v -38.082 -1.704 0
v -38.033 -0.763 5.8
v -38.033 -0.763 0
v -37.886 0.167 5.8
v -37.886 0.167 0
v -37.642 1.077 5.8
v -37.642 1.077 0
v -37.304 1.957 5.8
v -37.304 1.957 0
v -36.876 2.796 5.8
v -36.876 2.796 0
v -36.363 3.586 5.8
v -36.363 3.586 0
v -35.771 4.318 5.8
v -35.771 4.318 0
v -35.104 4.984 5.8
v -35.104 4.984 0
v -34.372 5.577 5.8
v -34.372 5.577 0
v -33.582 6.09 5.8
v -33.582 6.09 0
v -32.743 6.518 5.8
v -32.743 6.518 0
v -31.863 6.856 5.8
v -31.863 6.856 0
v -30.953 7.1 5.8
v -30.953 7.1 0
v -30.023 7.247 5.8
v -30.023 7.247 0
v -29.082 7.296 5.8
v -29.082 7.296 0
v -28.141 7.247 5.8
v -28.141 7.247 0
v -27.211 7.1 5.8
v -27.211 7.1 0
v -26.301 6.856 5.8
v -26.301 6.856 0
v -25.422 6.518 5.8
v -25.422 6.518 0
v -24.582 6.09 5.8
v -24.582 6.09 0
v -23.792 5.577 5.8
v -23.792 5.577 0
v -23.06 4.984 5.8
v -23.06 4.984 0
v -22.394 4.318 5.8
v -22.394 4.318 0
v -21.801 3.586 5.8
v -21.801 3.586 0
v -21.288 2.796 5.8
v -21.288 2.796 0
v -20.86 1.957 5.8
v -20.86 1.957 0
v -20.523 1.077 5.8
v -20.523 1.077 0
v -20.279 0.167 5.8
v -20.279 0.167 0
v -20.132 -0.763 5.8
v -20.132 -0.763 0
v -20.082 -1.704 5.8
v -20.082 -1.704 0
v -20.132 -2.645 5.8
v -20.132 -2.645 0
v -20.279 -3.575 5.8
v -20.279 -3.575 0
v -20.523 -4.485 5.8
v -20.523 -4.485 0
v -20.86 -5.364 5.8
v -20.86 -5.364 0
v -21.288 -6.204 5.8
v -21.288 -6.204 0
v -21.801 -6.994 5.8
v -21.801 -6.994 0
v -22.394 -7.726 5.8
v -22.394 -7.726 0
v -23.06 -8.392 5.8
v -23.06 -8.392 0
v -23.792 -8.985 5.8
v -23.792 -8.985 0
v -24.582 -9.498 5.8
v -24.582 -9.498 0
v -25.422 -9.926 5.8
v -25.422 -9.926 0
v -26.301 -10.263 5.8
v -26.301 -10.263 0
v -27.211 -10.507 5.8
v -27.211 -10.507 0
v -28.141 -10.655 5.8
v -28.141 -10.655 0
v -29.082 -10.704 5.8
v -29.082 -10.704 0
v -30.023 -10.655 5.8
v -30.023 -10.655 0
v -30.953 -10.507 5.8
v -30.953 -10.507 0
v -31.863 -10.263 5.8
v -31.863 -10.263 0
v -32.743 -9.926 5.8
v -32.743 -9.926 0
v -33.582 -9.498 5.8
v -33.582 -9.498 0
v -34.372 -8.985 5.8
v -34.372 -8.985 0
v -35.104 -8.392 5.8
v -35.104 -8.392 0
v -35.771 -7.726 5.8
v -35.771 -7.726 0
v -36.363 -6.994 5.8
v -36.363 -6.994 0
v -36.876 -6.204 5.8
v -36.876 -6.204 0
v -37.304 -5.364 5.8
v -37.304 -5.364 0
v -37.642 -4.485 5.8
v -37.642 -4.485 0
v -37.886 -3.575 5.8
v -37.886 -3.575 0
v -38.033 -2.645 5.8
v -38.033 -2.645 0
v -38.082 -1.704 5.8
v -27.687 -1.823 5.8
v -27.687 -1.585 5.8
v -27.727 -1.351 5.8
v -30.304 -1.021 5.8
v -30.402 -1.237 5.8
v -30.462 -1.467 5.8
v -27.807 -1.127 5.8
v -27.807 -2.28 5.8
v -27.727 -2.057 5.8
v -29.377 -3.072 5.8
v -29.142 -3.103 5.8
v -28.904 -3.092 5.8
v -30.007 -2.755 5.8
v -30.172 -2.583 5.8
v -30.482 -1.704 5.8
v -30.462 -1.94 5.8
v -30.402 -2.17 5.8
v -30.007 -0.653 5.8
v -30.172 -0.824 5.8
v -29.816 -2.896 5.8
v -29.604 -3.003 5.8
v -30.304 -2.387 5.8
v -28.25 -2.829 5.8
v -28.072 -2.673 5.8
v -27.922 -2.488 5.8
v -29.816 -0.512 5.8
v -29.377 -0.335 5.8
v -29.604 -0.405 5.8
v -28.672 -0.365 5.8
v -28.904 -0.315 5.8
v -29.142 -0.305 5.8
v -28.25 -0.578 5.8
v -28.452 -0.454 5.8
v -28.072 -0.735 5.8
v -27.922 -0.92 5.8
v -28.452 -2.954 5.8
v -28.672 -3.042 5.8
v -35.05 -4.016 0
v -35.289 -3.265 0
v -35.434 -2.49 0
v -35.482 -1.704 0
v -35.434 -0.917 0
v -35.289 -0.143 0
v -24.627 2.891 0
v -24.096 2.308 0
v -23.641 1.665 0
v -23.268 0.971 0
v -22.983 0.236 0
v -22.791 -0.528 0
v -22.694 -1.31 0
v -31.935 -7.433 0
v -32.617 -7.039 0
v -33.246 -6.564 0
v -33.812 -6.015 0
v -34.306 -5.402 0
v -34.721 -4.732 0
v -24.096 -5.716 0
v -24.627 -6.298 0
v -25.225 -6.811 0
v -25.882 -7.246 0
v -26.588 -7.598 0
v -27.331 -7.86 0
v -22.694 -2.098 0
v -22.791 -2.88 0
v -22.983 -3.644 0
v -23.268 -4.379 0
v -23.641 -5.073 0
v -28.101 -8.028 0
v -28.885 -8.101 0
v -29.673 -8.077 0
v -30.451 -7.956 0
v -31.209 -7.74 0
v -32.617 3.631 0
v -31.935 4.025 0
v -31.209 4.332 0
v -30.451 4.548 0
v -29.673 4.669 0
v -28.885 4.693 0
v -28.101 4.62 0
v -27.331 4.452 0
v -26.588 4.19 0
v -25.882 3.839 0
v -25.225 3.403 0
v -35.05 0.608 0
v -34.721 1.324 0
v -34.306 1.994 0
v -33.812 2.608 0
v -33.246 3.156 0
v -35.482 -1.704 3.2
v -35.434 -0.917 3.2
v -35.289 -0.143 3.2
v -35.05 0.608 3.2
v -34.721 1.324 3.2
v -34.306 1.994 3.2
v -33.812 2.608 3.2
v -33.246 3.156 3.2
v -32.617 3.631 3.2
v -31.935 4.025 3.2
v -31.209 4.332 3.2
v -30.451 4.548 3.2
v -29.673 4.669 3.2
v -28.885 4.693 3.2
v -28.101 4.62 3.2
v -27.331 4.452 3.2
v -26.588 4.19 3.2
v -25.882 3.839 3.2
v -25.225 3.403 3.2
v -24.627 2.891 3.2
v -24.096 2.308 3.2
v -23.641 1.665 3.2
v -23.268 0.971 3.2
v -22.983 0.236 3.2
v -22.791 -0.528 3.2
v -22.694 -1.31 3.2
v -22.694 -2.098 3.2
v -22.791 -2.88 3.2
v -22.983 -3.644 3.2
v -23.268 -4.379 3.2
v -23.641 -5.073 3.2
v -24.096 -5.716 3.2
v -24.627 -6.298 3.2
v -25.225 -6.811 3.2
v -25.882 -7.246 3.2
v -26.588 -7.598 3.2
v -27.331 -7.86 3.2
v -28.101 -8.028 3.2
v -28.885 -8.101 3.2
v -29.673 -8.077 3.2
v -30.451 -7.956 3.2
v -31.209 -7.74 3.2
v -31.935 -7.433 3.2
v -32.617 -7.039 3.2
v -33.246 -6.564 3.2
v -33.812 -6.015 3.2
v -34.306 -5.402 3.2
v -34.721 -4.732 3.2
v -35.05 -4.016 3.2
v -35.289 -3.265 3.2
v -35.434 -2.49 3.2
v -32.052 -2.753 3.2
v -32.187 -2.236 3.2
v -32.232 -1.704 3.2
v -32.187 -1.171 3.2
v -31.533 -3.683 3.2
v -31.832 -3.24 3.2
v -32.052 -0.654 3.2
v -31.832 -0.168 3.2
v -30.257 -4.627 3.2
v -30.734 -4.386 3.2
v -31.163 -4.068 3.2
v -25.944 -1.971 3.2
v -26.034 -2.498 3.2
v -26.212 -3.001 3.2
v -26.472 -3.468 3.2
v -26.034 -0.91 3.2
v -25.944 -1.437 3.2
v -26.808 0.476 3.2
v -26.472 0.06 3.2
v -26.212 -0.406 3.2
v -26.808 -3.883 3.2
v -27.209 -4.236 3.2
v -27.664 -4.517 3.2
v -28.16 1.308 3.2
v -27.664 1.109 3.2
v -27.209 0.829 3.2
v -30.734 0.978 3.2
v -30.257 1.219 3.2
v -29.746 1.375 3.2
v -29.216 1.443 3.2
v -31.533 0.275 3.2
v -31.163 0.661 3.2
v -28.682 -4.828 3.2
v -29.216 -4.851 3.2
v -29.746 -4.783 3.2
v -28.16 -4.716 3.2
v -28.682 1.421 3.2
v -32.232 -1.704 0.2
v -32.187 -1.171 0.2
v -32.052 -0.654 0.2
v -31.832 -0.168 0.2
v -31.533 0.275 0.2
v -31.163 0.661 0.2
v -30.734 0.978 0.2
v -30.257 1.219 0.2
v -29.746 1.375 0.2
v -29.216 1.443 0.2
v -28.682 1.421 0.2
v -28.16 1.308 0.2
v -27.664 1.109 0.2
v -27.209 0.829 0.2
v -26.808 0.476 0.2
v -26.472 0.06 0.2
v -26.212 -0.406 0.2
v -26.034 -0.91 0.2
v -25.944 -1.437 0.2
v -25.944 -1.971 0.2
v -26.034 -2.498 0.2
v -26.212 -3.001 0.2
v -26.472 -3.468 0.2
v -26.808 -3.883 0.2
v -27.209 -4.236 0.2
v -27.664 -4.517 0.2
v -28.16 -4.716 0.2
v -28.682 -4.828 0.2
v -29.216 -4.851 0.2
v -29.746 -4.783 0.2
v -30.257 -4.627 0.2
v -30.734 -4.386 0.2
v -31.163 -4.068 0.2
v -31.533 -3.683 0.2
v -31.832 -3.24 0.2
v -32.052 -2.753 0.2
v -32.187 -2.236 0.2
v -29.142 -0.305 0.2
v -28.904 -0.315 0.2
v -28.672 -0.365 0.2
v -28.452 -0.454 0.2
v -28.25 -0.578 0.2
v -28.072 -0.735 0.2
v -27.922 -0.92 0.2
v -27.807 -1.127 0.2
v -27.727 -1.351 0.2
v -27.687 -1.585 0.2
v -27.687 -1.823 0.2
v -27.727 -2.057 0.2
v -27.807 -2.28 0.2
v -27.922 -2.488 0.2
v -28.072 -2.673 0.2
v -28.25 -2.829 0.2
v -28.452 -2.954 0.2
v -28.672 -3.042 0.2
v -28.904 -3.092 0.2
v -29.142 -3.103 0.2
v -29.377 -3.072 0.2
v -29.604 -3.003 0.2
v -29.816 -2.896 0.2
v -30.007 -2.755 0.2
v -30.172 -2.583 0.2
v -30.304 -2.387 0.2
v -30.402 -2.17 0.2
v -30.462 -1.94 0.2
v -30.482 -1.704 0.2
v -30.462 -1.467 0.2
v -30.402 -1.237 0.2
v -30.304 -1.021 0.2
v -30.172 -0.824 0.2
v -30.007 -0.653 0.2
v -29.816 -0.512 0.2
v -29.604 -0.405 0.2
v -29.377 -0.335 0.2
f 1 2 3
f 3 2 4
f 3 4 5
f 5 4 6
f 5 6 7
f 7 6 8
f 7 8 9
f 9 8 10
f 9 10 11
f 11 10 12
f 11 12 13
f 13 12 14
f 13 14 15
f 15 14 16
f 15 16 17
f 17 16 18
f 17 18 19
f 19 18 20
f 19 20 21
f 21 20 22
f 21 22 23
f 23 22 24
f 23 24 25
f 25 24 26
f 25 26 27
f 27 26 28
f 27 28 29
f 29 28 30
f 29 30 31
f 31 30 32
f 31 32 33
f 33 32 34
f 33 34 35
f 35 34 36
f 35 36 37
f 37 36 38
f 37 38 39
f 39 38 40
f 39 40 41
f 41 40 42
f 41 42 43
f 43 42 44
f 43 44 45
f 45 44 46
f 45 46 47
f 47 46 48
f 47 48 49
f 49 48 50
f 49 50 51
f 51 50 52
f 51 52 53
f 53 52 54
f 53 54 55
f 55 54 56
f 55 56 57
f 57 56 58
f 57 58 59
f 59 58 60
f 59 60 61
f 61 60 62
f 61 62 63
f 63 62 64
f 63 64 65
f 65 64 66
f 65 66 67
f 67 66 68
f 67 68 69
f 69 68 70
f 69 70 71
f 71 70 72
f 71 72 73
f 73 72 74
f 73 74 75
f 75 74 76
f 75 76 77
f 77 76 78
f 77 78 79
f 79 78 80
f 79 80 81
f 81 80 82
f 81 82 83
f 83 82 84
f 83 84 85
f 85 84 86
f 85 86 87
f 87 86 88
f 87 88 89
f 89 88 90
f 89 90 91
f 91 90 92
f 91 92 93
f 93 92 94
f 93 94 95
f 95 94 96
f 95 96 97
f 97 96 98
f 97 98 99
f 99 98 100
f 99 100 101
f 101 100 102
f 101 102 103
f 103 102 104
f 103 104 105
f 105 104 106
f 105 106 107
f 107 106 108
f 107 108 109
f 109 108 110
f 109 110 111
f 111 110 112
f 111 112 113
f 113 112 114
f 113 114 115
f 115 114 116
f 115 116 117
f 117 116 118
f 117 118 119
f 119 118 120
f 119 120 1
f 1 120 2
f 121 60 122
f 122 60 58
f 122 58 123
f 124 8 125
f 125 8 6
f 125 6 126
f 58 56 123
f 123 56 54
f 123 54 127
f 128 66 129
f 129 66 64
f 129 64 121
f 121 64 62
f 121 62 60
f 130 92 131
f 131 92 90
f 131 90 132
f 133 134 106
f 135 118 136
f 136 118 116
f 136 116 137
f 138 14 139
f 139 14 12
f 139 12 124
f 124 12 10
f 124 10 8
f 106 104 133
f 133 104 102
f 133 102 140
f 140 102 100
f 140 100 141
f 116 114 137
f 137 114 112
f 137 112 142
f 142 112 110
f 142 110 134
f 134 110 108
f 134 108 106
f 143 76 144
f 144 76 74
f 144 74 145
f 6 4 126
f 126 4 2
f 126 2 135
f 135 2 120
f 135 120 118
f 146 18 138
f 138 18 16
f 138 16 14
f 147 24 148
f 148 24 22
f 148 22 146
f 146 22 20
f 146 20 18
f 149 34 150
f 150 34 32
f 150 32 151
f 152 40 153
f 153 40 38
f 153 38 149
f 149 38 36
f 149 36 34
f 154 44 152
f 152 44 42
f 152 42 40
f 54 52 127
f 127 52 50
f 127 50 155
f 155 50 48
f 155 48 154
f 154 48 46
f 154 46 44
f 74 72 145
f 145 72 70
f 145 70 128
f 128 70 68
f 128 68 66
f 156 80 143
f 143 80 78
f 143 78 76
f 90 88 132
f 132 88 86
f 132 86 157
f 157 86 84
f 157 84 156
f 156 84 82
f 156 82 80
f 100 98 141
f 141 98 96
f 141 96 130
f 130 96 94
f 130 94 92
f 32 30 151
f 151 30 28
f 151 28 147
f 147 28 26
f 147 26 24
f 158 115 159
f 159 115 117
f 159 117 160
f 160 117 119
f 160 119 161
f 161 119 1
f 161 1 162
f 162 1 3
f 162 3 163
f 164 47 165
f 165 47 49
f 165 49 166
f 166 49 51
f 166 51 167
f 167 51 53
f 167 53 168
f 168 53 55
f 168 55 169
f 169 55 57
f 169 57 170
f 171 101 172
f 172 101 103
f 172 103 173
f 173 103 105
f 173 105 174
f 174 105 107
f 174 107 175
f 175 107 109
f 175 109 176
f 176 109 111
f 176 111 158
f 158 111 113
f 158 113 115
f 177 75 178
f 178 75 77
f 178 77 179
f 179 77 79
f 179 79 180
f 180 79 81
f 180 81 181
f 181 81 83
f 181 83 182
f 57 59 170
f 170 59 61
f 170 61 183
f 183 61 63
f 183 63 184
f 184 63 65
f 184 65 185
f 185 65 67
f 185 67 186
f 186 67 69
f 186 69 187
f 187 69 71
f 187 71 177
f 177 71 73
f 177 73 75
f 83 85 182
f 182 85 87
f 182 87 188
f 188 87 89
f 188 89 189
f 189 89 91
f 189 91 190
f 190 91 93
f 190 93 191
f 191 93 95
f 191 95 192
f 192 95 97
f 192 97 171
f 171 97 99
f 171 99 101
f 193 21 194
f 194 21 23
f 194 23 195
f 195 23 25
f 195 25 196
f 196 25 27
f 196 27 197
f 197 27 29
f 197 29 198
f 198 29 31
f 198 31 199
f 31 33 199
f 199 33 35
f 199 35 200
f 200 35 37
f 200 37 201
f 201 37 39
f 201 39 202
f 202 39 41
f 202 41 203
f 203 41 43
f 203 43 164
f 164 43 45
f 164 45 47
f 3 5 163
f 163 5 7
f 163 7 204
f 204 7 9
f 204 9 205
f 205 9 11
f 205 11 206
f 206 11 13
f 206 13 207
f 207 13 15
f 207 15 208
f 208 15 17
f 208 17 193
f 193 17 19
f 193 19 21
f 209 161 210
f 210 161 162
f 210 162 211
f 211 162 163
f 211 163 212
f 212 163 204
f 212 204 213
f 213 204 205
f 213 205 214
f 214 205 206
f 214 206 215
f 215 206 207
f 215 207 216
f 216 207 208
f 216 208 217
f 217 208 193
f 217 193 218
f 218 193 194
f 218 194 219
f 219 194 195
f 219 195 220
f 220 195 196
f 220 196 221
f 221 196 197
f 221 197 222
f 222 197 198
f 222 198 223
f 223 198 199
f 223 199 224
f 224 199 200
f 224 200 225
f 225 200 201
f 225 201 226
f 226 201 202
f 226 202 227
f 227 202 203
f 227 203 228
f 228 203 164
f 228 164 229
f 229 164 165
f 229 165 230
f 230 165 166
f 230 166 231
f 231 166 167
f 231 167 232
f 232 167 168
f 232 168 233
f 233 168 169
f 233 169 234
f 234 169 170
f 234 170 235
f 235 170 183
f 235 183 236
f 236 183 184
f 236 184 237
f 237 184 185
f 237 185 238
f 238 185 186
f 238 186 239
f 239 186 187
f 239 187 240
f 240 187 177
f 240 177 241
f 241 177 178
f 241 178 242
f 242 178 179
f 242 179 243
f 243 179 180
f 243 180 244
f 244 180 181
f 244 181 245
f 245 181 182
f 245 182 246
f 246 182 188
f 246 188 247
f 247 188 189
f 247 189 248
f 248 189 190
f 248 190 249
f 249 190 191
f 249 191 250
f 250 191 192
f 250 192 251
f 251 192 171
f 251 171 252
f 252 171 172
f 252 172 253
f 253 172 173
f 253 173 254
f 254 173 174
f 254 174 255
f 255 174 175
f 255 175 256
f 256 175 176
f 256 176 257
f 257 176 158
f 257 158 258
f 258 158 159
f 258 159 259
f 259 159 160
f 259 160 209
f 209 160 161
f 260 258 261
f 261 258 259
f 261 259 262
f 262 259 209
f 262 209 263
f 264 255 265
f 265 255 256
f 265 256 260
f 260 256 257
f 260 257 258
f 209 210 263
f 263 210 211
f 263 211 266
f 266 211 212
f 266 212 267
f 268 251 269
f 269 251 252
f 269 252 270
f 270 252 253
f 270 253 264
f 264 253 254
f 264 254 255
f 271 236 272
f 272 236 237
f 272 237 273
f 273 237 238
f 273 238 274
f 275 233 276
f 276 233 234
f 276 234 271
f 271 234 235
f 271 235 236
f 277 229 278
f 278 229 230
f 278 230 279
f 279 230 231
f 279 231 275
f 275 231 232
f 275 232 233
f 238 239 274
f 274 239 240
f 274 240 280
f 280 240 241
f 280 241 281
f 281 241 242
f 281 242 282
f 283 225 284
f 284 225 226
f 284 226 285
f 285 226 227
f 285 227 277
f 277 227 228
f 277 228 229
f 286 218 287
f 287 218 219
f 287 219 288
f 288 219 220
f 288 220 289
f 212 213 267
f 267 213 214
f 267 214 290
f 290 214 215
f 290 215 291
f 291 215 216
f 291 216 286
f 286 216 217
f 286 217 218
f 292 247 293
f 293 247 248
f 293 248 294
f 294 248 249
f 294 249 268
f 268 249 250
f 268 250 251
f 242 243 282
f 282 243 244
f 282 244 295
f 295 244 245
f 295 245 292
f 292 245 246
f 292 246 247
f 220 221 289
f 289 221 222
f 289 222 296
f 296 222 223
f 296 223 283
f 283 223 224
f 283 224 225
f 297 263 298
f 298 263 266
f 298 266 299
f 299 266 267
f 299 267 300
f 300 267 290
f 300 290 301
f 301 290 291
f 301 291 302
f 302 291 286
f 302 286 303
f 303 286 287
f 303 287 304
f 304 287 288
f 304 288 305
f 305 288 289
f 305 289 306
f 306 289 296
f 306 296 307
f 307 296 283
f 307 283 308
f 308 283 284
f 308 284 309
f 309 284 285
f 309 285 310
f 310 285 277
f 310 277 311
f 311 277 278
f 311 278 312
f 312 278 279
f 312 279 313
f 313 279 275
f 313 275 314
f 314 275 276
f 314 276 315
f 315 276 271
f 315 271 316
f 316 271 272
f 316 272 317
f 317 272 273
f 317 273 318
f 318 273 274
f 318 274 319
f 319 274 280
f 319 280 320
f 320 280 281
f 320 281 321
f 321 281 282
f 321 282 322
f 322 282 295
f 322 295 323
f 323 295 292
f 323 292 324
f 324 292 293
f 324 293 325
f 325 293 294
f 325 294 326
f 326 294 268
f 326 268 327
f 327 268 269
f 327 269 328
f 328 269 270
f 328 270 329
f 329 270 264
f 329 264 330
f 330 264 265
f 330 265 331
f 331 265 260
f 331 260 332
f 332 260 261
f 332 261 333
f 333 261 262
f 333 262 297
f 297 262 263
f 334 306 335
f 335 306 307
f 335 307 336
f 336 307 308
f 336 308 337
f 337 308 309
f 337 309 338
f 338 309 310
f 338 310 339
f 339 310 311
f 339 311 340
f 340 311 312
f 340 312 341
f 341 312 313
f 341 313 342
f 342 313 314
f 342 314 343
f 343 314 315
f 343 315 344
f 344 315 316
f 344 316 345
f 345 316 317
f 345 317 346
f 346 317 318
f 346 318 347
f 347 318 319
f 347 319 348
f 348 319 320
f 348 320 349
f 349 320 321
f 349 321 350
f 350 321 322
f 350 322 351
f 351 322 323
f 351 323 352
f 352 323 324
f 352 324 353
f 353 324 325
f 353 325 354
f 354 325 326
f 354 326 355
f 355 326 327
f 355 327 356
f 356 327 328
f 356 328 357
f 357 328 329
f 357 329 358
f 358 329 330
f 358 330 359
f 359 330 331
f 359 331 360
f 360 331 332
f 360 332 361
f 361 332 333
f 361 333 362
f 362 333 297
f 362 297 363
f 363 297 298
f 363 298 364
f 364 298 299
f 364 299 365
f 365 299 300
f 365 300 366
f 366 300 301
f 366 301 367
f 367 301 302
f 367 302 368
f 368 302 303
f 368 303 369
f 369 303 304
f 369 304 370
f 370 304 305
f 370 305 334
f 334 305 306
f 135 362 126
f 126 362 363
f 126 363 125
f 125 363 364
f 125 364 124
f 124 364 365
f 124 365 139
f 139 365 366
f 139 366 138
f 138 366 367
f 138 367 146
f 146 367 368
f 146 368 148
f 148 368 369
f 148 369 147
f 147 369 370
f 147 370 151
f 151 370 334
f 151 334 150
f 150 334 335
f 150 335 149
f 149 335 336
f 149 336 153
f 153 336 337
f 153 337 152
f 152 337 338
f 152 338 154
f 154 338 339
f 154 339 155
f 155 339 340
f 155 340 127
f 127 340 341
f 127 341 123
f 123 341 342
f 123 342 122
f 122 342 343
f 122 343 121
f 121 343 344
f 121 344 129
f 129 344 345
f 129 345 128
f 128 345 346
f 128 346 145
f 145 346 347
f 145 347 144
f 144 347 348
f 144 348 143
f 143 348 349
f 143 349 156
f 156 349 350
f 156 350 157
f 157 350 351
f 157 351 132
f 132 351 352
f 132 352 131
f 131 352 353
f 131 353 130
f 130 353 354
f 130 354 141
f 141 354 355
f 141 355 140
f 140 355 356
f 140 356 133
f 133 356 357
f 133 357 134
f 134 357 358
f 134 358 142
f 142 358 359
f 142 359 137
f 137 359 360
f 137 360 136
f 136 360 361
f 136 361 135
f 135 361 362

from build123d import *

# Parameters (mm, degrees)
SKETCH1_R           = 9
BOSS_EXTRUDE1_DEPTH = 5.8
SKETCH2_R           = 6.4
CUT_EXTRUDE1_DEPTH  = 3.2
SKETCH3_R           = 1
BOSS_EXTRUDE2_DEPTH = 3
SKETCH4_R           = 3.15
BOSS_EXTRUDE3_DEPTH = 3
SKETCH5_R           = 1.4
CUT_EXTRUDE2_DEPTH  = 40.9523428


with BuildPart() as part:
    # Sketch1 → Boss-Extrude1 (new body)
    with BuildSketch(Plane.XY):
        with Locations((-29.082250471, -1.703826149)):
            Circle(SKETCH1_R)
    extrude(amount=BOSS_EXTRUDE1_DEPTH)

    # Sketch2 → Cut-Extrude1 (cut)
    with BuildSketch(Plane(origin=(0, 0, 0), x_dir=(-1, 0, 0), z_dir=(0, 0, -1))):
        with Locations((29.082250471, -1.703826149)):
            Circle(SKETCH2_R)
    extrude(amount=-CUT_EXTRUDE1_DEPTH, mode=Mode.SUBTRACT)

    # Sketch3 → Boss-Extrude2 (add)
    with BuildSketch(Plane(origin=(0, 0, 3.2), x_dir=(-1, 0, 0), z_dir=(0, 0, -1))):
        with Locations((29.082250471, -1.703826149)):
            Circle(SKETCH3_R)
    extrude(amount=BOSS_EXTRUDE2_DEPTH)

    # Sketch4 → Boss-Extrude3 (add)
    with BuildSketch(Plane(origin=(0, 0, 0.2), x_dir=(-1, 0, 0), z_dir=(0, 0, -1))):
        with Locations((29.082250471, -1.703826149)):
            Circle(SKETCH4_R)
    extrude(amount=-BOSS_EXTRUDE3_DEPTH)

    # Sketch5 → Cut-Extrude2 (cut, through all)
    with BuildSketch(Plane(origin=(0, 0, 0.2), x_dir=(-1, 0, 0), z_dir=(0, 0, -1))):
        with Locations((29.082250471, -1.703826149)):
            Circle(SKETCH5_R)
    extrude(amount=-CUT_EXTRUDE2_DEPTH, mode=Mode.SUBTRACT)


solid = part.part
